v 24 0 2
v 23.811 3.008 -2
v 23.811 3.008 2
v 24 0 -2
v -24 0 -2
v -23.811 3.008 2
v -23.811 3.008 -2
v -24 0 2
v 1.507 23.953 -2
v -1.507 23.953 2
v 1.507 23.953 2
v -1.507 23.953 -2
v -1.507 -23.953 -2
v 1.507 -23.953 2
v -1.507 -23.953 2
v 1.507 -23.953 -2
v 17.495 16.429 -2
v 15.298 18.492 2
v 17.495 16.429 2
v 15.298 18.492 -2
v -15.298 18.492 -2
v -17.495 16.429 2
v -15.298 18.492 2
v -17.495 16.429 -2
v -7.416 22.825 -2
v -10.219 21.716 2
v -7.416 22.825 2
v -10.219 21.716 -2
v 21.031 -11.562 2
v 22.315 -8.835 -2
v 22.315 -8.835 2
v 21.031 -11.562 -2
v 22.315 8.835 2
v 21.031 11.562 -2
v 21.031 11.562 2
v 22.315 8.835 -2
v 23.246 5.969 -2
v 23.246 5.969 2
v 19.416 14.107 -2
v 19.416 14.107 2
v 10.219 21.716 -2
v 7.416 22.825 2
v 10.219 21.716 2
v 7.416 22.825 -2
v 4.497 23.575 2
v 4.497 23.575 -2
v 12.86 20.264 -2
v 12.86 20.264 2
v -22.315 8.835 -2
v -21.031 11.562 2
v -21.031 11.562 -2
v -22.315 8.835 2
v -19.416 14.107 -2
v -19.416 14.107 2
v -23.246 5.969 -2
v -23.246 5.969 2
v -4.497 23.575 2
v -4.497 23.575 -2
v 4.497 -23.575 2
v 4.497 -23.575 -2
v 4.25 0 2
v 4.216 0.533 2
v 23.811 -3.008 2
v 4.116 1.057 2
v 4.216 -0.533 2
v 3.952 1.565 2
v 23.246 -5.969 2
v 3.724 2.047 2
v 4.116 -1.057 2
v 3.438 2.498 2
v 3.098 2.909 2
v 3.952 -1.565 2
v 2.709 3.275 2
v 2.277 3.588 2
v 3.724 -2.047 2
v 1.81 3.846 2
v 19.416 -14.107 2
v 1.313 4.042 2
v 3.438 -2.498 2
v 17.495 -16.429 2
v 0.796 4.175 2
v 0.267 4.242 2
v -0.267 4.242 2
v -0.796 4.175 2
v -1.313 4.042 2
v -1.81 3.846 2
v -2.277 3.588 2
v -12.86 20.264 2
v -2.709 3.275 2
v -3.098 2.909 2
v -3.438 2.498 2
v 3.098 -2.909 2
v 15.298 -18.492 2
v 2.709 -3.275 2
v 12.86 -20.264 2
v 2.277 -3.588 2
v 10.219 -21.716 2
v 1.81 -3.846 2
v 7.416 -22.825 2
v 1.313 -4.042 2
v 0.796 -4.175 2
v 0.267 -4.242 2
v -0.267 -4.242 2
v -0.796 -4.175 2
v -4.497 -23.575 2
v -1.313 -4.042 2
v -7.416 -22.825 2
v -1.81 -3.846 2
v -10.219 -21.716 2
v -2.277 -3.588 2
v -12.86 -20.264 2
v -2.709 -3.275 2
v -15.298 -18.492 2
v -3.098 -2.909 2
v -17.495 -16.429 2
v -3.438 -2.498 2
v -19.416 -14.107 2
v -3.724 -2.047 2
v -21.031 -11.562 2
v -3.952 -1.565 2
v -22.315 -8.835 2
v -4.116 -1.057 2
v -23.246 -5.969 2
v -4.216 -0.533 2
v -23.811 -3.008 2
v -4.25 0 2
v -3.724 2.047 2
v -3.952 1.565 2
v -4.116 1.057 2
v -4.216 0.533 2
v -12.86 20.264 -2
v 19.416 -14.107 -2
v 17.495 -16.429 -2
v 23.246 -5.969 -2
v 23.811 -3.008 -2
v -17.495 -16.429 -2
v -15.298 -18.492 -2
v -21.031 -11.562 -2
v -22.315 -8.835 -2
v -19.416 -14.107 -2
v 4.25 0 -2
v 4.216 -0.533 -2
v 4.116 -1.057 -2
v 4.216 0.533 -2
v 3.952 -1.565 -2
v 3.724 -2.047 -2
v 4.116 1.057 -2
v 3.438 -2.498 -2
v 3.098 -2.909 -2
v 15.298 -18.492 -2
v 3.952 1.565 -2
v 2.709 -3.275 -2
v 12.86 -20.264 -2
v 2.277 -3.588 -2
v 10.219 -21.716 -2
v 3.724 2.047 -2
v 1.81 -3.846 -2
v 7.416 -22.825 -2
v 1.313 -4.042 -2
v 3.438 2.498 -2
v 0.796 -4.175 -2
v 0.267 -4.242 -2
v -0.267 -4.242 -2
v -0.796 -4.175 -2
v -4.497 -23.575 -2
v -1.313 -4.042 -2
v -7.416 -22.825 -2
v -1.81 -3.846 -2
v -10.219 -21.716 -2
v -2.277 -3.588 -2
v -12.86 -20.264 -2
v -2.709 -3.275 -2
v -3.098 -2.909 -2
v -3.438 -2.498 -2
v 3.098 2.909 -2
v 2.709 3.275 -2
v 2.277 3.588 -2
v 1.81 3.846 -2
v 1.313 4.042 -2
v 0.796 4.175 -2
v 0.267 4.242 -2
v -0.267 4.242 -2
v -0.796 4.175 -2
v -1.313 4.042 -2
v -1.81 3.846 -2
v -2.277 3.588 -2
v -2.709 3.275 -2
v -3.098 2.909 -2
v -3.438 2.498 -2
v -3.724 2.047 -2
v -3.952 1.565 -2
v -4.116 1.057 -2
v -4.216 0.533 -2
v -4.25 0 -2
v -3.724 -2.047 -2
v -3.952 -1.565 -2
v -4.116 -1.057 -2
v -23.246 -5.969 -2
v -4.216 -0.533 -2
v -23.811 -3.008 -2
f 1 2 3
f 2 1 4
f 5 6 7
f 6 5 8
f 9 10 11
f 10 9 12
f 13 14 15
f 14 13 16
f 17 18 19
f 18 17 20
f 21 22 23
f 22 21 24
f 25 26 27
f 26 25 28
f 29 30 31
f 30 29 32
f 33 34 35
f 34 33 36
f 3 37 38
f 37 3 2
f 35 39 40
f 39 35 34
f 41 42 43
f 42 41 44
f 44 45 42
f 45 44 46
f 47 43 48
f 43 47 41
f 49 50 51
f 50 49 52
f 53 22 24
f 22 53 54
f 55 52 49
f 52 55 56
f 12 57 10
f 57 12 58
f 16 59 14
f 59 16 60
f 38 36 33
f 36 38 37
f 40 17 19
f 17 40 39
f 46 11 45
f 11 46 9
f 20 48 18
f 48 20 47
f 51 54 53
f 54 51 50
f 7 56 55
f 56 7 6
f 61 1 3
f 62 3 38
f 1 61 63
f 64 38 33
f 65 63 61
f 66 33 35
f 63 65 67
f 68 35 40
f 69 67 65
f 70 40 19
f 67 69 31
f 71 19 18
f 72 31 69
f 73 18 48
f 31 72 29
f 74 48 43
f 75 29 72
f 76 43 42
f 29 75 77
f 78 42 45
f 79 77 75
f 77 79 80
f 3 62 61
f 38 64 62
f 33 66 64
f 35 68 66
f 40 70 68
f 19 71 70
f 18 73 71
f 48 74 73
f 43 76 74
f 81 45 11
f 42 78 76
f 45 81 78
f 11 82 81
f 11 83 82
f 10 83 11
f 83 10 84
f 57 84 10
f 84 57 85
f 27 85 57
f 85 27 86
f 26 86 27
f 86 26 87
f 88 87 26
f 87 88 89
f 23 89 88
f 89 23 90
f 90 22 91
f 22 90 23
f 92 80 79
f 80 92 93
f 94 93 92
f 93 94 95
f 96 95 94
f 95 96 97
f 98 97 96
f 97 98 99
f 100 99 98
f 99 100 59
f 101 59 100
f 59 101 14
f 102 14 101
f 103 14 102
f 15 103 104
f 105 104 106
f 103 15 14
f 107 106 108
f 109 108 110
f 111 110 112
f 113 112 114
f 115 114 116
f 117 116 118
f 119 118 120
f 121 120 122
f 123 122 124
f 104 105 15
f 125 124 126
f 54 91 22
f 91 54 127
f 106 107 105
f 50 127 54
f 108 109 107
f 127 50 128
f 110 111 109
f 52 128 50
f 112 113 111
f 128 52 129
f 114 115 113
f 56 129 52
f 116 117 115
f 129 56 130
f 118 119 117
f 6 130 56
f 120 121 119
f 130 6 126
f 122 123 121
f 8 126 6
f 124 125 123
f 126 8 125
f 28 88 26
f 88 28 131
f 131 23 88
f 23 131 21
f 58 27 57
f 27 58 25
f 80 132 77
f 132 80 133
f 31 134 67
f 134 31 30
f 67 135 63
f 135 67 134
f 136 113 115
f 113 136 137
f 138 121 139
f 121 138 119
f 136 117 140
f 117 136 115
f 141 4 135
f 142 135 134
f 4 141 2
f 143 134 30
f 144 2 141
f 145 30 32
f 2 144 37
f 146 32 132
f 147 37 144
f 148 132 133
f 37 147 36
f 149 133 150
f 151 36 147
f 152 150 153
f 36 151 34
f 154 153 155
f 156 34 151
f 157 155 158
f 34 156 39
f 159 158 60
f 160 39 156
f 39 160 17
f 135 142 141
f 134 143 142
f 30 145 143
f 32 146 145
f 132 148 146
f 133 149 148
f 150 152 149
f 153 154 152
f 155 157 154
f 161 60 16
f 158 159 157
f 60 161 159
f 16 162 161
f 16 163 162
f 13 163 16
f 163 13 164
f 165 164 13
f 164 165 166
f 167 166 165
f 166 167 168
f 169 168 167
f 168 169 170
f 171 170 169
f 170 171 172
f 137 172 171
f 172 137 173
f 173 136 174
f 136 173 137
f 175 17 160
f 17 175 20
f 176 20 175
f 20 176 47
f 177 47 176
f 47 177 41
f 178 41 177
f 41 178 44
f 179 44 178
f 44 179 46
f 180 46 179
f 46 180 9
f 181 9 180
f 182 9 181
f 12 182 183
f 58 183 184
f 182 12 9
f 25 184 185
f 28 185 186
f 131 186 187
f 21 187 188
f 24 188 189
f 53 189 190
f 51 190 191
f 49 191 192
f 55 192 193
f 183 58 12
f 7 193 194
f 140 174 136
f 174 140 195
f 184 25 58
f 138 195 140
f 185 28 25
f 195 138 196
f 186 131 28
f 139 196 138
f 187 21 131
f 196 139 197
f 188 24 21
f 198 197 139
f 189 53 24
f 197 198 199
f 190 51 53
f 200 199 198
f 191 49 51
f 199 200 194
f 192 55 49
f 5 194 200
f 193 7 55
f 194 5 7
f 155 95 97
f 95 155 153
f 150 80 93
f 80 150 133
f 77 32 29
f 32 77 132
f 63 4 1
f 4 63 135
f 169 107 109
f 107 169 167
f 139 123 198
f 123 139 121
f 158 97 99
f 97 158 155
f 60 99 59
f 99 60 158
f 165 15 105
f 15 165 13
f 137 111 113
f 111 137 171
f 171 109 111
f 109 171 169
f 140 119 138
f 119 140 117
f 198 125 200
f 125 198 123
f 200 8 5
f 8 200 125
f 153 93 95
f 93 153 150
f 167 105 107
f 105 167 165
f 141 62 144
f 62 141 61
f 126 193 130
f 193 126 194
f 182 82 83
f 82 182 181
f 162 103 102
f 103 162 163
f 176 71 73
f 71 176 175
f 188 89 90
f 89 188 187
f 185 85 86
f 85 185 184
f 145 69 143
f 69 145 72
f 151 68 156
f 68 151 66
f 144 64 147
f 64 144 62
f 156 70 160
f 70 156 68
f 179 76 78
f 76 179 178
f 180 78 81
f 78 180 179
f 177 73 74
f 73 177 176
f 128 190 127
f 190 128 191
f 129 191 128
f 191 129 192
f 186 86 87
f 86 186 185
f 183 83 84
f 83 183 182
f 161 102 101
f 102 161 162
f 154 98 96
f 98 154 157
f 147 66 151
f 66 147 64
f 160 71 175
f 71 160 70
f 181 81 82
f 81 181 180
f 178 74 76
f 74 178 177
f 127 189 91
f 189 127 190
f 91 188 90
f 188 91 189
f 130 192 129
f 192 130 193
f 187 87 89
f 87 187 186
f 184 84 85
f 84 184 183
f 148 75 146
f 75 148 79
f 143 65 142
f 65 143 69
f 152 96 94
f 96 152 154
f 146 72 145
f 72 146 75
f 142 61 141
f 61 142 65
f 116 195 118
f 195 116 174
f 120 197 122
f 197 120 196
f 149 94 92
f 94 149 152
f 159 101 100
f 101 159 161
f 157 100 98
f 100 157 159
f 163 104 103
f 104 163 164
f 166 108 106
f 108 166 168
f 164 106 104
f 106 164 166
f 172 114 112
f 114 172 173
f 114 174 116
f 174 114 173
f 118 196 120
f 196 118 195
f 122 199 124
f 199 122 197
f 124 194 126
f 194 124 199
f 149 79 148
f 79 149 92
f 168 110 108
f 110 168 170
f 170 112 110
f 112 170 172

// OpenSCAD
$fn = 50;


difference() {
	union() {
		translate(v = [0, 0, -2.0000000000]) {
			cylinder(h = 4, r = 24.0000000000);
		}
	}
	union() {
		translate(v = [0, 0, -100.0000000000]) {
			cylinder(h = 200, r = 4.2500000000);
		}
	}
}
